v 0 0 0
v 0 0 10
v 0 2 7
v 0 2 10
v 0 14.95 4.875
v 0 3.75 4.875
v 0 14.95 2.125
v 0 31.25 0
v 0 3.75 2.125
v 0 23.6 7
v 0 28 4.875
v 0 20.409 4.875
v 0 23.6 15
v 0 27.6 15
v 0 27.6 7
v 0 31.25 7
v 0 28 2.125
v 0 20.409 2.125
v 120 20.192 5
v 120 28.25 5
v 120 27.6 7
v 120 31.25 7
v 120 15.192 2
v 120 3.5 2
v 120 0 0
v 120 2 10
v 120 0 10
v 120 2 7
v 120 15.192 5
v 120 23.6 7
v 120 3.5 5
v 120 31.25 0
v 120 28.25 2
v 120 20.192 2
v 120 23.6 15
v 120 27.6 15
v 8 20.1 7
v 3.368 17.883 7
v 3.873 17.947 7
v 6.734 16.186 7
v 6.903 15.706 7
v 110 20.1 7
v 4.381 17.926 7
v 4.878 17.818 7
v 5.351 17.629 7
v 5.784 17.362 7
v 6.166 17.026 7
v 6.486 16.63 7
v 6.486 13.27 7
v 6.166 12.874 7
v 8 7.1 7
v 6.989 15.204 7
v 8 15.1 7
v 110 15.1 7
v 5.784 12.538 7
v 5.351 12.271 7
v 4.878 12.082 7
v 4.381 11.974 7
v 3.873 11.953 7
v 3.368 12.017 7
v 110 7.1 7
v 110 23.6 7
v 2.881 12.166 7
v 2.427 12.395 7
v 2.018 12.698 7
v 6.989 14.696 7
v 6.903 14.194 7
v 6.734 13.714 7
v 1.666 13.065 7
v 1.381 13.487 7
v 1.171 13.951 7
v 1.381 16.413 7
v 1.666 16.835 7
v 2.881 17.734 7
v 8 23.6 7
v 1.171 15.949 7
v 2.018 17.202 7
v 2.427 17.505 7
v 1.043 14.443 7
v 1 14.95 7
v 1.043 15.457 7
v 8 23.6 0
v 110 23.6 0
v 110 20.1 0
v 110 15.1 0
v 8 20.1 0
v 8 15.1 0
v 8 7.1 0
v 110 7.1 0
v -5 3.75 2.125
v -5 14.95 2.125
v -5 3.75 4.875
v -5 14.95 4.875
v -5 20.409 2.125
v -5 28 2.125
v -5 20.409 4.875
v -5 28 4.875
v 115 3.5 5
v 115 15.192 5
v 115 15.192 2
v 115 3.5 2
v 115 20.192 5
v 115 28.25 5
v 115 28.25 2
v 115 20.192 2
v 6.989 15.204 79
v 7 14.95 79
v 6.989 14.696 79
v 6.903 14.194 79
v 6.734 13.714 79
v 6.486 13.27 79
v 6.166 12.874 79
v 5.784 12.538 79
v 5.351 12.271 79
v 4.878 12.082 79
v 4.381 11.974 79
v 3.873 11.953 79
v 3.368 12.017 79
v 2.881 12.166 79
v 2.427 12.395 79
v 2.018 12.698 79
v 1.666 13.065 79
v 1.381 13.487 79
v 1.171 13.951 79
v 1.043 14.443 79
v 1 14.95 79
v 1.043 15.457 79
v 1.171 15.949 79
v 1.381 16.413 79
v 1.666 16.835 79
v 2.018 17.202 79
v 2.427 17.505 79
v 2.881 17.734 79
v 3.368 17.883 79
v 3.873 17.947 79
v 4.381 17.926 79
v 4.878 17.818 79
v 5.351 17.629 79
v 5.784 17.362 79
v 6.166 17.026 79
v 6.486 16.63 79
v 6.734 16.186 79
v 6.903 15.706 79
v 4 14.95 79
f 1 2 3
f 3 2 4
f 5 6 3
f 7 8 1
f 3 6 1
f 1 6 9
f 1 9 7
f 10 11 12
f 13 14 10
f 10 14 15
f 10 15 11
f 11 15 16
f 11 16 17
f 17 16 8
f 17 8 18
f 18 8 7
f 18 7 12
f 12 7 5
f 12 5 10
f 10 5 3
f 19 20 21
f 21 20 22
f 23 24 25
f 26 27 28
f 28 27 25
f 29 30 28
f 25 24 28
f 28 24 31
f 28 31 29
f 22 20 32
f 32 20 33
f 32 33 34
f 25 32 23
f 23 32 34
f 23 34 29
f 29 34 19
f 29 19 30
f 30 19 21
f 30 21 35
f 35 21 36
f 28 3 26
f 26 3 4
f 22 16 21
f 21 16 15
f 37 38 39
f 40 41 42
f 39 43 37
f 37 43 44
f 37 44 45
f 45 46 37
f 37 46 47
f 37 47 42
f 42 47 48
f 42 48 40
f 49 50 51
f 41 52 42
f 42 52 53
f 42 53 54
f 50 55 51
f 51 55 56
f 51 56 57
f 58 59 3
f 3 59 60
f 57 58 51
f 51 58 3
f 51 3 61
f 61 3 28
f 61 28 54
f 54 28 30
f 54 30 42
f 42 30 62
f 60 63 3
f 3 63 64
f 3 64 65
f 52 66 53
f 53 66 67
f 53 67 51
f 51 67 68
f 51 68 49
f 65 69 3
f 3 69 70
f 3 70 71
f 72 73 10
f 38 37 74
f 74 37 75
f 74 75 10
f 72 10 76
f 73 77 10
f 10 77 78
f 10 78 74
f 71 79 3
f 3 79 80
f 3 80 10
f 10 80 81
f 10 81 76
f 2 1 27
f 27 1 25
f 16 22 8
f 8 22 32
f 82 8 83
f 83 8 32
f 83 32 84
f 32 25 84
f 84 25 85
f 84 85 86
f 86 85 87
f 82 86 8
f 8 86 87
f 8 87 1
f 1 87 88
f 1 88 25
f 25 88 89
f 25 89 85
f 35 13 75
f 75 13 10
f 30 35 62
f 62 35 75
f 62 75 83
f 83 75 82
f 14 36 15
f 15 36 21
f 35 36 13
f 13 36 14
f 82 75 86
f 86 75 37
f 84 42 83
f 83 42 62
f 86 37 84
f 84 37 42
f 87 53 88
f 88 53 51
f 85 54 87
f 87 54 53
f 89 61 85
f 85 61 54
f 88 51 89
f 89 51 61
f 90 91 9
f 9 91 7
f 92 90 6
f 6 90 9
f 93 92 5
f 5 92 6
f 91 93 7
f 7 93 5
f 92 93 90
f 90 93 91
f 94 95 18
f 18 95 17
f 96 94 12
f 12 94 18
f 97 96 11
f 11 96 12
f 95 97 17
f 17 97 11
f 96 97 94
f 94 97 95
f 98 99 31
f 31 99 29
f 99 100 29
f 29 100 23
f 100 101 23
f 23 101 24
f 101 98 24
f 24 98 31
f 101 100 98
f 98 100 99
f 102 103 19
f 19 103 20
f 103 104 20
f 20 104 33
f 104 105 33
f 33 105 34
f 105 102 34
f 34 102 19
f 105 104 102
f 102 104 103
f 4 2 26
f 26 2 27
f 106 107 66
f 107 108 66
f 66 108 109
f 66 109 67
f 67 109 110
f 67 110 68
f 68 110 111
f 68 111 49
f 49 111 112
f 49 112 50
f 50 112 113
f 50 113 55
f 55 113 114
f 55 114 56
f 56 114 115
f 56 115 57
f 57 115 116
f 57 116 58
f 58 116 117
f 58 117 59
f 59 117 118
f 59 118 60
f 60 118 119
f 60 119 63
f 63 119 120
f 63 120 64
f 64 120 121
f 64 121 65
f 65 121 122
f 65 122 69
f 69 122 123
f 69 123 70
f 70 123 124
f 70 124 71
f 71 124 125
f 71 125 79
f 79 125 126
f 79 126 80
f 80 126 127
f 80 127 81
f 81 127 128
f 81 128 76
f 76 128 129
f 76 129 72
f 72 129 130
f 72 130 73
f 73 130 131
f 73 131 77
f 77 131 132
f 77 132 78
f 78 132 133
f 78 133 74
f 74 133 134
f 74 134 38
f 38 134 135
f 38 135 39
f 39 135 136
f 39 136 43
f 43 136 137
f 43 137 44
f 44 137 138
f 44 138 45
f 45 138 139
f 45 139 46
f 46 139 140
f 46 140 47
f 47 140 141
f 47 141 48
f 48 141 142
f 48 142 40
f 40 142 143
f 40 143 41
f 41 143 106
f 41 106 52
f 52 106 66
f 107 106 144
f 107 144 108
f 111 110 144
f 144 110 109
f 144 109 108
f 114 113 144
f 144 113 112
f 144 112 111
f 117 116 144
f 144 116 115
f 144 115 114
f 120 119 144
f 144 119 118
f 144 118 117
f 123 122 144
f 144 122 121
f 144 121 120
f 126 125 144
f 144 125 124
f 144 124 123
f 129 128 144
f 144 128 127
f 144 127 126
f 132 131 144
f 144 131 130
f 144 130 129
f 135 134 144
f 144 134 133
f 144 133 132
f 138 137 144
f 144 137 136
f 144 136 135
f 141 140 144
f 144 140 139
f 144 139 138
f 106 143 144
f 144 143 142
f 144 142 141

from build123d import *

# Parameters (mm, degrees)
SKETCH1_W               = 120
SKETCH1_H               = 31.25
BOSS_EXTRUDE1_DEPTH     = 7
SKETCH2_W               = 120
SKETCH2_H               = 4
SKETCH2_H_2             = 2
BOSS_EXTRUDE2_DEPTH     = 8
CUT_EXTRUDE1_DEPTH      = 125.260059955
CUT_EXTRUDE1_DEPTH_BACK = 125.260059955
SKETCH3_W               = 102
SKETCH3_H               = 8
SKETCH3_H_2             = 3.5
SKETCH4_W               = 2.75
SKETCH4_H               = 7.59061182
SKETCH4_H_2             = 11.2
BOSS_EXTRUDE3_DEPTH     = 5
SKETCH5_W               = 3
SKETCH5_H               = 8.0580149
SKETCH5_H_2             = 11.6919851
CUT_EXTRUDE2_DEPTH      = 5
CUT_EXTRUDE3_REACH      = 126.906
SKETCH6_W               = 5
SKETCH6_H               = 2
SKETCH7_R               = 3
BOSS_EXTRUDE4_DEPTH     = 72


with BuildPart() as part:
    # Sketch1 → Boss-Extrude1 (new body)
    with BuildSketch(Plane.XY):
        with Locations((60, 15.625)):
            Rectangle(SKETCH1_W, SKETCH1_H)
    extrude(amount=BOSS_EXTRUDE1_DEPTH)

    # Sketch2 → Boss-Extrude2 (add)
    with BuildSketch(Plane.XY.offset(7)):
        with Locations((60, 25.6)):
            Rectangle(SKETCH2_W, SKETCH2_H)
        with Locations((60, 1)):
            Rectangle(SKETCH2_W, SKETCH2_H_2)
    extrude(amount=BOSS_EXTRUDE2_DEPTH)

    # Sketch3 → Cut-Extrude1 (cut, two sides: drawn at the far end of the back side and taken through both)
    with BuildSketch(Plane.XY.offset(7).offset(-CUT_EXTRUDE1_DEPTH_BACK)):
        with Locations((59, 11.1)):
            Rectangle(SKETCH3_W, SKETCH3_H)
        with Locations((59, 21.85)):
            Rectangle(SKETCH3_W, SKETCH3_H_2)
    extrude(amount=CUT_EXTRUDE1_DEPTH + CUT_EXTRUDE1_DEPTH_BACK, mode=Mode.SUBTRACT)

    # Sketch4 → Boss-Extrude3 (add)
    with BuildSketch(Plane.ZY):
        with Locations((3.5, 24.20469409)):
            Rectangle(SKETCH4_W, SKETCH4_H)
        with Locations((3.5, 9.35)):
            Rectangle(SKETCH4_W, SKETCH4_H_2)
    extrude(amount=BOSS_EXTRUDE3_DEPTH)

    # Sketch5 → Cut-Extrude2 (cut)
    with BuildSketch(Plane(origin=(120, 0, 0), x_dir=(0, 0, -1), z_dir=(1, 0, 0))):
        with Locations((-3.5, 24.22099255)):
            Rectangle(SKETCH5_W, SKETCH5_H)
        with Locations((-3.5, 9.34599255)):
            Rectangle(SKETCH5_W, SKETCH5_H_2)
    extrude(amount=-CUT_EXTRUDE2_DEPTH, mode=Mode.SUBTRACT)

    # Sketch6 → Cut-Extrude3 (cut, up to next)
    with BuildSketch(Plane.ZY, mode=Mode.PRIVATE) as cut_extrude3_sk1:
        with Locations((12.5, 1)):
            Rectangle(SKETCH6_W, SKETCH6_H)
    cut_extrude3_tool1 = extrude(cut_extrude3_sk1.sketch, amount=-CUT_EXTRUDE3_REACH, mode=Mode.PRIVATE) & part.part
    add(cut_extrude3_tool1.solids().sort_by_distance((0, 1, 12.5))[0], mode=Mode.SUBTRACT)

    # Sketch7 → Boss-Extrude4 (add)
    with BuildSketch(Plane.XY.offset(7)):
        with Locations((4, 14.95)):
            Circle(SKETCH7_R)
    extrude(amount=BOSS_EXTRUDE4_DEPTH)


solid = part.part
